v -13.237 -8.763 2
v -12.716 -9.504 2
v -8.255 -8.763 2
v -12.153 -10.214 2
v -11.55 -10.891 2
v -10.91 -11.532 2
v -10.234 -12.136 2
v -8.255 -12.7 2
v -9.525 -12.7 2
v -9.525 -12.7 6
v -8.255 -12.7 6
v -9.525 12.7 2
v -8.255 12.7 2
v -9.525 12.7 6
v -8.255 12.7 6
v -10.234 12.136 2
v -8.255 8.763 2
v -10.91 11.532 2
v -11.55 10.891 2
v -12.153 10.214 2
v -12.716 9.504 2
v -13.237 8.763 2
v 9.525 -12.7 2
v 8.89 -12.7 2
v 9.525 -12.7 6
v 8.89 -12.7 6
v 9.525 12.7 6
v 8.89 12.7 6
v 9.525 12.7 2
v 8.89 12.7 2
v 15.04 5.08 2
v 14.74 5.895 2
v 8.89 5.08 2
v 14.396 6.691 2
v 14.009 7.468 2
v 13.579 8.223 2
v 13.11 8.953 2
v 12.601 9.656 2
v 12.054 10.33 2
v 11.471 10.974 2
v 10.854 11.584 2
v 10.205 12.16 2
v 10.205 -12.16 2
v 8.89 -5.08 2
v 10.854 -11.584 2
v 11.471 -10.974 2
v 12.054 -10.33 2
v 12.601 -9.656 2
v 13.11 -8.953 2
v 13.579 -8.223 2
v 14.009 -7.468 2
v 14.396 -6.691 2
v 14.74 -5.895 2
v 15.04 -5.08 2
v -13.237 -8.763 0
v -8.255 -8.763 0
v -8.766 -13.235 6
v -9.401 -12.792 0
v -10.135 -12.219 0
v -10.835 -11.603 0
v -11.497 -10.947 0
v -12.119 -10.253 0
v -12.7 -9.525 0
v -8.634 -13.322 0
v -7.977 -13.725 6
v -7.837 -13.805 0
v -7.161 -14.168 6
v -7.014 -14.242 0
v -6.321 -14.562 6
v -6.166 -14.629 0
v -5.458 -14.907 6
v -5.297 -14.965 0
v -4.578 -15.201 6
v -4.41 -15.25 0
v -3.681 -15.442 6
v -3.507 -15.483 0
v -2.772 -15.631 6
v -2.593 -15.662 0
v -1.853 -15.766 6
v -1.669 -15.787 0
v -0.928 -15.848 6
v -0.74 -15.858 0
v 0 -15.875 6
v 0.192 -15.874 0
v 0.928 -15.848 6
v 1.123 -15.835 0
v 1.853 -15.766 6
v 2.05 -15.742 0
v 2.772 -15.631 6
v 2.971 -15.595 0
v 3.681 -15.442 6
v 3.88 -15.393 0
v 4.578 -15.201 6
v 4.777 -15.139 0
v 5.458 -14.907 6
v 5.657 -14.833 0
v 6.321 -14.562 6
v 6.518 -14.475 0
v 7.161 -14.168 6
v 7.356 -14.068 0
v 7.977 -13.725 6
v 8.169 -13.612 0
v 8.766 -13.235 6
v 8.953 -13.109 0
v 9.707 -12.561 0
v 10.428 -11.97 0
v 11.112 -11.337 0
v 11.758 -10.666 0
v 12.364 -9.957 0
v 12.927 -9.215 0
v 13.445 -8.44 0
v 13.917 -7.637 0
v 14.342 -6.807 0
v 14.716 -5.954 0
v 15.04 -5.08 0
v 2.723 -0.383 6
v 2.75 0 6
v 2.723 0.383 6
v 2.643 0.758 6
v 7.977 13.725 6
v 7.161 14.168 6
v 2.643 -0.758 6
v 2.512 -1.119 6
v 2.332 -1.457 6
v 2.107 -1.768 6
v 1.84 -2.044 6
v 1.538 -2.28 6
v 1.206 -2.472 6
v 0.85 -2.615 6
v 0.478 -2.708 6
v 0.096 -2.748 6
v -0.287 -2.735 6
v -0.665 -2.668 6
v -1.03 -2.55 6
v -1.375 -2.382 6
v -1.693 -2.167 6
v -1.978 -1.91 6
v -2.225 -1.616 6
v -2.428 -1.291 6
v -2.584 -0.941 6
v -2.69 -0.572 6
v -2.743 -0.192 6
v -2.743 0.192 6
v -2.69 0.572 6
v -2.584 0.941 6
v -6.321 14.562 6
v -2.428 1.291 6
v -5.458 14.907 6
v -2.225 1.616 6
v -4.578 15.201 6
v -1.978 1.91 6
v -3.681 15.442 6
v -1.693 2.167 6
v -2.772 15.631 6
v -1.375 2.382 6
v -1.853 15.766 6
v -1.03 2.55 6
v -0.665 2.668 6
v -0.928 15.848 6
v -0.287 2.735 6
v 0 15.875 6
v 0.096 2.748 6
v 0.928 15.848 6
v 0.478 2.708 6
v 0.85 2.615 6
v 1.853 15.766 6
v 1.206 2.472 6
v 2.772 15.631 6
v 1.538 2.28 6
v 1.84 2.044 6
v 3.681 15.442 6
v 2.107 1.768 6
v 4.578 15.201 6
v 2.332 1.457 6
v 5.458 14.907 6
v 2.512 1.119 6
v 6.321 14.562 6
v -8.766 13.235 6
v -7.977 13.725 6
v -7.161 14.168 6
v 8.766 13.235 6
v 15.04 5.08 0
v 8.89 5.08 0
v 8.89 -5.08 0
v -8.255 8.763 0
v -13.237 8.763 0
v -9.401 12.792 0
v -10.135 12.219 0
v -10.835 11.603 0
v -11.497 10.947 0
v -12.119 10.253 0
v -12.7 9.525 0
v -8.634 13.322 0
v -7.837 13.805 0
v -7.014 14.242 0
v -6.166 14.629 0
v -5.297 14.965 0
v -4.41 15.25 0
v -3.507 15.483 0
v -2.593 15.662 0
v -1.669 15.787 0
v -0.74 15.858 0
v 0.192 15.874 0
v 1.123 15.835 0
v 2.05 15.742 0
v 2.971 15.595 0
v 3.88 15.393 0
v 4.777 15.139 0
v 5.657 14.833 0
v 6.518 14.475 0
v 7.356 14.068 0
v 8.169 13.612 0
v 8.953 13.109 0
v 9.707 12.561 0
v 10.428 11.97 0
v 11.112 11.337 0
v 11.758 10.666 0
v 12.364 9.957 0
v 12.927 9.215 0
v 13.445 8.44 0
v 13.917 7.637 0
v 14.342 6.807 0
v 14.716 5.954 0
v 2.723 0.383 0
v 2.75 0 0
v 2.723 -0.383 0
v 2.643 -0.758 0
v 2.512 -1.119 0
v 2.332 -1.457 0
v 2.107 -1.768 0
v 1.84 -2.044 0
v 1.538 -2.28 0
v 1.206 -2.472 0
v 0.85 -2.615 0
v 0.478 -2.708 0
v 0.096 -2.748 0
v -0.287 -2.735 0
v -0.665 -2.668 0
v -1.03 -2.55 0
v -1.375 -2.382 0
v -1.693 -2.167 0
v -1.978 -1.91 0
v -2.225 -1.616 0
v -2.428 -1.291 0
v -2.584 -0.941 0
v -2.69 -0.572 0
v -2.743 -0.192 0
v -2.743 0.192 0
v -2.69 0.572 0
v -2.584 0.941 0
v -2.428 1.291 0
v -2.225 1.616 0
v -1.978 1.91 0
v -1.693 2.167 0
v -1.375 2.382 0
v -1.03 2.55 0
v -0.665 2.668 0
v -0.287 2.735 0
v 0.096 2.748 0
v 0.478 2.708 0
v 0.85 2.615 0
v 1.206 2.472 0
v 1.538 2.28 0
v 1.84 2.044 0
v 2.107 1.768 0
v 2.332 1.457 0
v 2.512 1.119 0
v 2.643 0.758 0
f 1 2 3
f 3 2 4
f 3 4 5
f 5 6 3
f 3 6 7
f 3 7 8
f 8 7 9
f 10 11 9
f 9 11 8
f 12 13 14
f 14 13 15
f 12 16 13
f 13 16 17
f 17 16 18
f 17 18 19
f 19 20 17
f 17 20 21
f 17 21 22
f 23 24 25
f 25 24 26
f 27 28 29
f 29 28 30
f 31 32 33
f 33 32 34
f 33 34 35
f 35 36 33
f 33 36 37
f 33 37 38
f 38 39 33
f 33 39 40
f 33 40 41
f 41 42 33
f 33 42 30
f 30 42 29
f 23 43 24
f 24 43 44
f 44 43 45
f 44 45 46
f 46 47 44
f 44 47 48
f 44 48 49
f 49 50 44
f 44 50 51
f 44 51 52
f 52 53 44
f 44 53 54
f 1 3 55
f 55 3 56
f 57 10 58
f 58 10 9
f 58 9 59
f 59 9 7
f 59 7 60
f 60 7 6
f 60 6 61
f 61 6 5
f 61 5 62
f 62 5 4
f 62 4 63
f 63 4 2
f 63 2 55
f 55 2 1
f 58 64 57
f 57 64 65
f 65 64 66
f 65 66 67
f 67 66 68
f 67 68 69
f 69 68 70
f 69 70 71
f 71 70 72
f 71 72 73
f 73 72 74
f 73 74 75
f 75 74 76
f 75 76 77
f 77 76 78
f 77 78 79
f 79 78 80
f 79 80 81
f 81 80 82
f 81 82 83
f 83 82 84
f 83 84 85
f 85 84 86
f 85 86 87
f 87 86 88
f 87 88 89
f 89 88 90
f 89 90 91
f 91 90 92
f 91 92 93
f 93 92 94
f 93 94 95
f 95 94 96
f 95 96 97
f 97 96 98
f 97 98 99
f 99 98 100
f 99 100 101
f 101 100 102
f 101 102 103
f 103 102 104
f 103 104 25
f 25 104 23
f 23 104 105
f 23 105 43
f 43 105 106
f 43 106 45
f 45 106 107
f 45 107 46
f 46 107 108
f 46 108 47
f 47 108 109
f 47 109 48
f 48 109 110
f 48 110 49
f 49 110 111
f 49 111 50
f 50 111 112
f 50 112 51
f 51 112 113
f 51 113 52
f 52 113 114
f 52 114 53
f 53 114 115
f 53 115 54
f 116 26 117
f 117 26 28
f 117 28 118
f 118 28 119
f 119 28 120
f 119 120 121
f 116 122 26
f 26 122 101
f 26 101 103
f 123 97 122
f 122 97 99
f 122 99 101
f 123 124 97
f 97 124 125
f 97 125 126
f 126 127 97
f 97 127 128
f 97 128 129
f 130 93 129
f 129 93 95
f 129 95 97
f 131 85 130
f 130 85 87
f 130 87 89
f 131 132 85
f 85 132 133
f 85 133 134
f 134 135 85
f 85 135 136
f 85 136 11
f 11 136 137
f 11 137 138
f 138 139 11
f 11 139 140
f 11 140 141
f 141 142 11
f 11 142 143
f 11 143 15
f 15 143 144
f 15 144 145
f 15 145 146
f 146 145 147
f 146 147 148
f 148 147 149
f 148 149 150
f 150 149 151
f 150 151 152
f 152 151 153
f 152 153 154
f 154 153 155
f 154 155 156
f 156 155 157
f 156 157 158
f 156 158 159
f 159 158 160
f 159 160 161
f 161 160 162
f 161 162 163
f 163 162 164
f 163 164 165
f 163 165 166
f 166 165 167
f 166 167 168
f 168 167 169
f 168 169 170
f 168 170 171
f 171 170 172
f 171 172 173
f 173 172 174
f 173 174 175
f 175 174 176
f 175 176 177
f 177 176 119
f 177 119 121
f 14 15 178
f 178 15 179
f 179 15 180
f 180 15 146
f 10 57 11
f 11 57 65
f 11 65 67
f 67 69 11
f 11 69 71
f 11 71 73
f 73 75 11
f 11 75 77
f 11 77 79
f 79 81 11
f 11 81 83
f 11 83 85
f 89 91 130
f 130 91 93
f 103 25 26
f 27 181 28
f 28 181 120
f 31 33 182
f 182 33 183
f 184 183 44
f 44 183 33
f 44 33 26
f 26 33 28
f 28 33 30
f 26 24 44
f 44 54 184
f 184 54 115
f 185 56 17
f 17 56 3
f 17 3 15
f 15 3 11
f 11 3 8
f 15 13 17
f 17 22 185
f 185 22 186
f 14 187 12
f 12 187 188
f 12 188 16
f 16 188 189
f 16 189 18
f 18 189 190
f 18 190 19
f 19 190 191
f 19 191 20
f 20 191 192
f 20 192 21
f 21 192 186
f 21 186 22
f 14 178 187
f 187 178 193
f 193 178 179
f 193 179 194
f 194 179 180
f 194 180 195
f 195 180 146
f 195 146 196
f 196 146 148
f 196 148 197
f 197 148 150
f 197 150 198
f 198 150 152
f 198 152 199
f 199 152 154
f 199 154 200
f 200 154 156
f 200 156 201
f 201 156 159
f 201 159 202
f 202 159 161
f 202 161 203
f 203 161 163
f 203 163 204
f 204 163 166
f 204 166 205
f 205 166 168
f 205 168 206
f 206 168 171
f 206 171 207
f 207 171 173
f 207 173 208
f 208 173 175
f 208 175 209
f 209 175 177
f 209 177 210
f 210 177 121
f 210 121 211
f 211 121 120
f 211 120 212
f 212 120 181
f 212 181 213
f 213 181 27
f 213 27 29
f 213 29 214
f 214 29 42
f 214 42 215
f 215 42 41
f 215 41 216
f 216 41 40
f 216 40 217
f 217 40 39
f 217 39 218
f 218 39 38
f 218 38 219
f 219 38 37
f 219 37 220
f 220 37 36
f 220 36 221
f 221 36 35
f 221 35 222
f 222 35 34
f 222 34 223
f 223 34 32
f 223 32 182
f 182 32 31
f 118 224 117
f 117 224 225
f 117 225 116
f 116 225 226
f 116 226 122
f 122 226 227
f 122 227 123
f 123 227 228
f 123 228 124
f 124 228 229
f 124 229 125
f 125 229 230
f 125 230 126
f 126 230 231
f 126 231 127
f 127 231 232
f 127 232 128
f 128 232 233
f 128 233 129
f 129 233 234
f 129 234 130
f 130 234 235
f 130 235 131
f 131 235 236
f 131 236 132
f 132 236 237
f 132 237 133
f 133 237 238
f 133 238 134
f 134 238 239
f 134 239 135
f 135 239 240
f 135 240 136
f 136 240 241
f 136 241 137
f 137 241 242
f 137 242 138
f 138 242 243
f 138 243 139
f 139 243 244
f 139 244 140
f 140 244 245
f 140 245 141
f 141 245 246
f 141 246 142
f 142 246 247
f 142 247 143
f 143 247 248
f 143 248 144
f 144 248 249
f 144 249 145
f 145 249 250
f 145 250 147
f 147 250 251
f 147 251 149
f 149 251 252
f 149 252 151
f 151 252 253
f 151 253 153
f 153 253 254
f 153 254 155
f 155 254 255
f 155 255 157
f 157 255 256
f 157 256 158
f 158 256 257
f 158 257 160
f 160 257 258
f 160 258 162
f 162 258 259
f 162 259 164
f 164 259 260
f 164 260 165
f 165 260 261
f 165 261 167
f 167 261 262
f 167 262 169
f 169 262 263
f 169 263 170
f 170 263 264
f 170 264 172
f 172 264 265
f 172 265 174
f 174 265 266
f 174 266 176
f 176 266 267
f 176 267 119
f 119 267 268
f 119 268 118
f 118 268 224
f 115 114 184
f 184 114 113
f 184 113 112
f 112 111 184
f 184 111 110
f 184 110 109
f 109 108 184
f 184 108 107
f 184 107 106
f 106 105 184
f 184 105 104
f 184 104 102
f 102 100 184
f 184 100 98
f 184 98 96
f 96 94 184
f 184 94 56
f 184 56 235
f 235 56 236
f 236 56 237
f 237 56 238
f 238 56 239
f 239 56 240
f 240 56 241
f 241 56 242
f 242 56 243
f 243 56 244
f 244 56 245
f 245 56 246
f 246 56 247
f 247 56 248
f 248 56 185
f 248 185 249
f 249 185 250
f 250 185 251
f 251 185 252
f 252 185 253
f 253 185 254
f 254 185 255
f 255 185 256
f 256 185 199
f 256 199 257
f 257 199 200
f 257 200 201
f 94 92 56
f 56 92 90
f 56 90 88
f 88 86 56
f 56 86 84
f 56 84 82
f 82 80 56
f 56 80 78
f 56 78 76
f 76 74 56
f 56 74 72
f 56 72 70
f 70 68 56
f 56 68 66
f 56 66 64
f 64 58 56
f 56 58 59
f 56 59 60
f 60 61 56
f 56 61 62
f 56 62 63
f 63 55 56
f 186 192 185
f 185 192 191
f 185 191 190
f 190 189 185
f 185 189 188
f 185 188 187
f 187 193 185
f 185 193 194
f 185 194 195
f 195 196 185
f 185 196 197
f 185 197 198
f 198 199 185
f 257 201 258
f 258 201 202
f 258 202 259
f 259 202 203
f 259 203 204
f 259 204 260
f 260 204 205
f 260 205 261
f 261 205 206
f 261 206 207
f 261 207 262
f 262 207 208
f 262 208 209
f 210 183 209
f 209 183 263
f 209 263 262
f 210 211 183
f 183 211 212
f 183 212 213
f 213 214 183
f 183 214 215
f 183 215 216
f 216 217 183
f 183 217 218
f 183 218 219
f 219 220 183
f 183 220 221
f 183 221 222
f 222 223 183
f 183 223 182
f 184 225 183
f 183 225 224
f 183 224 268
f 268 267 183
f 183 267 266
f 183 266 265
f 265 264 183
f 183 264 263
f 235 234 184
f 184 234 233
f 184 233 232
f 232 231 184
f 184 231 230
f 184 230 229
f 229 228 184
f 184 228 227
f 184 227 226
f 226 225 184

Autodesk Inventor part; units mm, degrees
ref_plane "YZ Plane" through (0, 0, 0) normal (1, 0, 0) x (0, 1, 0)
ref_plane "XZ Plane" through (0, 0, 0) normal (0, 1, 0) x (-1, 0, 0)
ref_plane "XY Plane" through (0, 0, 0) normal (0, 0, 1) x (1, 0, 0)
sketch "Sketch1" plane through (0, 0, 0) normal (0, 0, 1) x (1, 0, 0)
  circle A0 centre (0, 0) radius 15.875
  circle A1 centre (0, 0) radius 2.75
  dimension "d0" = 31.75
  dimension "d1" = 5.5
extrude "Extrusion1" add sketch "Sketch1" along normal blind 6
sketch "Sketch2" plane through (0, 0, 6) normal (0, 0, 1) x (1, 0, 0)
  line L0 (-17.145, 8.763) -> (-8.255, 8.763)
  line L1 (-8.255, 8.763) -> (-8.255, -8.763)
  line L2 (-8.255, -8.763) -> (-17.145, -8.763)
  line L3 (-17.145, -8.763) -> (-17.145, 8.763)
  line L4 (8.89, 5.08) -> (16.51, 5.08)
  line L5 (16.51, 5.08) -> (16.51, -5.08)
  line L6 (16.51, -5.08) -> (8.89, -5.08)
  line L7 (8.89, -5.08) -> (8.89, 5.08)
  line L8 (-12.7, 8.763) -> (-12.7, -8.763) construction
  line L9 (12.7, 5.08) -> (12.7, -5.08) construction
  point P0 (0, 0)
  point P1 (-8.255, 0)
  point P2 (8.89, 0)
  dimension "d4" = 8.89
  dimension "d5" = 7.62
  dimension "d6" = 10.16
  dimension "d7" = 12.7
  dimension "d8" = 12.7
  dimension "d9" = 17.526
extrude "Extrusion2" cut sketch "Sketch2" against normal through all
sketch "Sketch3" plane through (0, 0, 6) normal (0, 0, 1) x (1, 0, 0)
  line L0 (-21.6805, 12.7) -> (-8.255, 12.7)
  line L1 (-8.255, 12.7) -> (-8.255, -12.7)
  line L2 (-8.255, -12.7) -> (-21.6805, -12.7)
  line L3 (-21.6805, -12.7) -> (-21.6805, 12.7)
  line L4 (-8.255, 8.763) -> (-8.255, -8.763) projected
  line L5 (8.89, 12.7) -> (29.1291, 12.7)
  line L6 (29.1291, 12.7) -> (29.1291, -12.7)
  line L7 (29.1291, -12.7) -> (8.89, -12.7)
  line L8 (8.89, -12.7) -> (8.89, 12.7)
  line L9 (8.89, -5.08) -> (8.89, 5.08) projected
  point P0 (0, 0)
  point P1 (-21.6805, 0)
  dimension "d12" = 25.4
extrude "Extrusion3" cut sketch "Sketch3" against normal blind 4
equation "\"d8\" = d7"
properties part number "fakebattergasket3"
